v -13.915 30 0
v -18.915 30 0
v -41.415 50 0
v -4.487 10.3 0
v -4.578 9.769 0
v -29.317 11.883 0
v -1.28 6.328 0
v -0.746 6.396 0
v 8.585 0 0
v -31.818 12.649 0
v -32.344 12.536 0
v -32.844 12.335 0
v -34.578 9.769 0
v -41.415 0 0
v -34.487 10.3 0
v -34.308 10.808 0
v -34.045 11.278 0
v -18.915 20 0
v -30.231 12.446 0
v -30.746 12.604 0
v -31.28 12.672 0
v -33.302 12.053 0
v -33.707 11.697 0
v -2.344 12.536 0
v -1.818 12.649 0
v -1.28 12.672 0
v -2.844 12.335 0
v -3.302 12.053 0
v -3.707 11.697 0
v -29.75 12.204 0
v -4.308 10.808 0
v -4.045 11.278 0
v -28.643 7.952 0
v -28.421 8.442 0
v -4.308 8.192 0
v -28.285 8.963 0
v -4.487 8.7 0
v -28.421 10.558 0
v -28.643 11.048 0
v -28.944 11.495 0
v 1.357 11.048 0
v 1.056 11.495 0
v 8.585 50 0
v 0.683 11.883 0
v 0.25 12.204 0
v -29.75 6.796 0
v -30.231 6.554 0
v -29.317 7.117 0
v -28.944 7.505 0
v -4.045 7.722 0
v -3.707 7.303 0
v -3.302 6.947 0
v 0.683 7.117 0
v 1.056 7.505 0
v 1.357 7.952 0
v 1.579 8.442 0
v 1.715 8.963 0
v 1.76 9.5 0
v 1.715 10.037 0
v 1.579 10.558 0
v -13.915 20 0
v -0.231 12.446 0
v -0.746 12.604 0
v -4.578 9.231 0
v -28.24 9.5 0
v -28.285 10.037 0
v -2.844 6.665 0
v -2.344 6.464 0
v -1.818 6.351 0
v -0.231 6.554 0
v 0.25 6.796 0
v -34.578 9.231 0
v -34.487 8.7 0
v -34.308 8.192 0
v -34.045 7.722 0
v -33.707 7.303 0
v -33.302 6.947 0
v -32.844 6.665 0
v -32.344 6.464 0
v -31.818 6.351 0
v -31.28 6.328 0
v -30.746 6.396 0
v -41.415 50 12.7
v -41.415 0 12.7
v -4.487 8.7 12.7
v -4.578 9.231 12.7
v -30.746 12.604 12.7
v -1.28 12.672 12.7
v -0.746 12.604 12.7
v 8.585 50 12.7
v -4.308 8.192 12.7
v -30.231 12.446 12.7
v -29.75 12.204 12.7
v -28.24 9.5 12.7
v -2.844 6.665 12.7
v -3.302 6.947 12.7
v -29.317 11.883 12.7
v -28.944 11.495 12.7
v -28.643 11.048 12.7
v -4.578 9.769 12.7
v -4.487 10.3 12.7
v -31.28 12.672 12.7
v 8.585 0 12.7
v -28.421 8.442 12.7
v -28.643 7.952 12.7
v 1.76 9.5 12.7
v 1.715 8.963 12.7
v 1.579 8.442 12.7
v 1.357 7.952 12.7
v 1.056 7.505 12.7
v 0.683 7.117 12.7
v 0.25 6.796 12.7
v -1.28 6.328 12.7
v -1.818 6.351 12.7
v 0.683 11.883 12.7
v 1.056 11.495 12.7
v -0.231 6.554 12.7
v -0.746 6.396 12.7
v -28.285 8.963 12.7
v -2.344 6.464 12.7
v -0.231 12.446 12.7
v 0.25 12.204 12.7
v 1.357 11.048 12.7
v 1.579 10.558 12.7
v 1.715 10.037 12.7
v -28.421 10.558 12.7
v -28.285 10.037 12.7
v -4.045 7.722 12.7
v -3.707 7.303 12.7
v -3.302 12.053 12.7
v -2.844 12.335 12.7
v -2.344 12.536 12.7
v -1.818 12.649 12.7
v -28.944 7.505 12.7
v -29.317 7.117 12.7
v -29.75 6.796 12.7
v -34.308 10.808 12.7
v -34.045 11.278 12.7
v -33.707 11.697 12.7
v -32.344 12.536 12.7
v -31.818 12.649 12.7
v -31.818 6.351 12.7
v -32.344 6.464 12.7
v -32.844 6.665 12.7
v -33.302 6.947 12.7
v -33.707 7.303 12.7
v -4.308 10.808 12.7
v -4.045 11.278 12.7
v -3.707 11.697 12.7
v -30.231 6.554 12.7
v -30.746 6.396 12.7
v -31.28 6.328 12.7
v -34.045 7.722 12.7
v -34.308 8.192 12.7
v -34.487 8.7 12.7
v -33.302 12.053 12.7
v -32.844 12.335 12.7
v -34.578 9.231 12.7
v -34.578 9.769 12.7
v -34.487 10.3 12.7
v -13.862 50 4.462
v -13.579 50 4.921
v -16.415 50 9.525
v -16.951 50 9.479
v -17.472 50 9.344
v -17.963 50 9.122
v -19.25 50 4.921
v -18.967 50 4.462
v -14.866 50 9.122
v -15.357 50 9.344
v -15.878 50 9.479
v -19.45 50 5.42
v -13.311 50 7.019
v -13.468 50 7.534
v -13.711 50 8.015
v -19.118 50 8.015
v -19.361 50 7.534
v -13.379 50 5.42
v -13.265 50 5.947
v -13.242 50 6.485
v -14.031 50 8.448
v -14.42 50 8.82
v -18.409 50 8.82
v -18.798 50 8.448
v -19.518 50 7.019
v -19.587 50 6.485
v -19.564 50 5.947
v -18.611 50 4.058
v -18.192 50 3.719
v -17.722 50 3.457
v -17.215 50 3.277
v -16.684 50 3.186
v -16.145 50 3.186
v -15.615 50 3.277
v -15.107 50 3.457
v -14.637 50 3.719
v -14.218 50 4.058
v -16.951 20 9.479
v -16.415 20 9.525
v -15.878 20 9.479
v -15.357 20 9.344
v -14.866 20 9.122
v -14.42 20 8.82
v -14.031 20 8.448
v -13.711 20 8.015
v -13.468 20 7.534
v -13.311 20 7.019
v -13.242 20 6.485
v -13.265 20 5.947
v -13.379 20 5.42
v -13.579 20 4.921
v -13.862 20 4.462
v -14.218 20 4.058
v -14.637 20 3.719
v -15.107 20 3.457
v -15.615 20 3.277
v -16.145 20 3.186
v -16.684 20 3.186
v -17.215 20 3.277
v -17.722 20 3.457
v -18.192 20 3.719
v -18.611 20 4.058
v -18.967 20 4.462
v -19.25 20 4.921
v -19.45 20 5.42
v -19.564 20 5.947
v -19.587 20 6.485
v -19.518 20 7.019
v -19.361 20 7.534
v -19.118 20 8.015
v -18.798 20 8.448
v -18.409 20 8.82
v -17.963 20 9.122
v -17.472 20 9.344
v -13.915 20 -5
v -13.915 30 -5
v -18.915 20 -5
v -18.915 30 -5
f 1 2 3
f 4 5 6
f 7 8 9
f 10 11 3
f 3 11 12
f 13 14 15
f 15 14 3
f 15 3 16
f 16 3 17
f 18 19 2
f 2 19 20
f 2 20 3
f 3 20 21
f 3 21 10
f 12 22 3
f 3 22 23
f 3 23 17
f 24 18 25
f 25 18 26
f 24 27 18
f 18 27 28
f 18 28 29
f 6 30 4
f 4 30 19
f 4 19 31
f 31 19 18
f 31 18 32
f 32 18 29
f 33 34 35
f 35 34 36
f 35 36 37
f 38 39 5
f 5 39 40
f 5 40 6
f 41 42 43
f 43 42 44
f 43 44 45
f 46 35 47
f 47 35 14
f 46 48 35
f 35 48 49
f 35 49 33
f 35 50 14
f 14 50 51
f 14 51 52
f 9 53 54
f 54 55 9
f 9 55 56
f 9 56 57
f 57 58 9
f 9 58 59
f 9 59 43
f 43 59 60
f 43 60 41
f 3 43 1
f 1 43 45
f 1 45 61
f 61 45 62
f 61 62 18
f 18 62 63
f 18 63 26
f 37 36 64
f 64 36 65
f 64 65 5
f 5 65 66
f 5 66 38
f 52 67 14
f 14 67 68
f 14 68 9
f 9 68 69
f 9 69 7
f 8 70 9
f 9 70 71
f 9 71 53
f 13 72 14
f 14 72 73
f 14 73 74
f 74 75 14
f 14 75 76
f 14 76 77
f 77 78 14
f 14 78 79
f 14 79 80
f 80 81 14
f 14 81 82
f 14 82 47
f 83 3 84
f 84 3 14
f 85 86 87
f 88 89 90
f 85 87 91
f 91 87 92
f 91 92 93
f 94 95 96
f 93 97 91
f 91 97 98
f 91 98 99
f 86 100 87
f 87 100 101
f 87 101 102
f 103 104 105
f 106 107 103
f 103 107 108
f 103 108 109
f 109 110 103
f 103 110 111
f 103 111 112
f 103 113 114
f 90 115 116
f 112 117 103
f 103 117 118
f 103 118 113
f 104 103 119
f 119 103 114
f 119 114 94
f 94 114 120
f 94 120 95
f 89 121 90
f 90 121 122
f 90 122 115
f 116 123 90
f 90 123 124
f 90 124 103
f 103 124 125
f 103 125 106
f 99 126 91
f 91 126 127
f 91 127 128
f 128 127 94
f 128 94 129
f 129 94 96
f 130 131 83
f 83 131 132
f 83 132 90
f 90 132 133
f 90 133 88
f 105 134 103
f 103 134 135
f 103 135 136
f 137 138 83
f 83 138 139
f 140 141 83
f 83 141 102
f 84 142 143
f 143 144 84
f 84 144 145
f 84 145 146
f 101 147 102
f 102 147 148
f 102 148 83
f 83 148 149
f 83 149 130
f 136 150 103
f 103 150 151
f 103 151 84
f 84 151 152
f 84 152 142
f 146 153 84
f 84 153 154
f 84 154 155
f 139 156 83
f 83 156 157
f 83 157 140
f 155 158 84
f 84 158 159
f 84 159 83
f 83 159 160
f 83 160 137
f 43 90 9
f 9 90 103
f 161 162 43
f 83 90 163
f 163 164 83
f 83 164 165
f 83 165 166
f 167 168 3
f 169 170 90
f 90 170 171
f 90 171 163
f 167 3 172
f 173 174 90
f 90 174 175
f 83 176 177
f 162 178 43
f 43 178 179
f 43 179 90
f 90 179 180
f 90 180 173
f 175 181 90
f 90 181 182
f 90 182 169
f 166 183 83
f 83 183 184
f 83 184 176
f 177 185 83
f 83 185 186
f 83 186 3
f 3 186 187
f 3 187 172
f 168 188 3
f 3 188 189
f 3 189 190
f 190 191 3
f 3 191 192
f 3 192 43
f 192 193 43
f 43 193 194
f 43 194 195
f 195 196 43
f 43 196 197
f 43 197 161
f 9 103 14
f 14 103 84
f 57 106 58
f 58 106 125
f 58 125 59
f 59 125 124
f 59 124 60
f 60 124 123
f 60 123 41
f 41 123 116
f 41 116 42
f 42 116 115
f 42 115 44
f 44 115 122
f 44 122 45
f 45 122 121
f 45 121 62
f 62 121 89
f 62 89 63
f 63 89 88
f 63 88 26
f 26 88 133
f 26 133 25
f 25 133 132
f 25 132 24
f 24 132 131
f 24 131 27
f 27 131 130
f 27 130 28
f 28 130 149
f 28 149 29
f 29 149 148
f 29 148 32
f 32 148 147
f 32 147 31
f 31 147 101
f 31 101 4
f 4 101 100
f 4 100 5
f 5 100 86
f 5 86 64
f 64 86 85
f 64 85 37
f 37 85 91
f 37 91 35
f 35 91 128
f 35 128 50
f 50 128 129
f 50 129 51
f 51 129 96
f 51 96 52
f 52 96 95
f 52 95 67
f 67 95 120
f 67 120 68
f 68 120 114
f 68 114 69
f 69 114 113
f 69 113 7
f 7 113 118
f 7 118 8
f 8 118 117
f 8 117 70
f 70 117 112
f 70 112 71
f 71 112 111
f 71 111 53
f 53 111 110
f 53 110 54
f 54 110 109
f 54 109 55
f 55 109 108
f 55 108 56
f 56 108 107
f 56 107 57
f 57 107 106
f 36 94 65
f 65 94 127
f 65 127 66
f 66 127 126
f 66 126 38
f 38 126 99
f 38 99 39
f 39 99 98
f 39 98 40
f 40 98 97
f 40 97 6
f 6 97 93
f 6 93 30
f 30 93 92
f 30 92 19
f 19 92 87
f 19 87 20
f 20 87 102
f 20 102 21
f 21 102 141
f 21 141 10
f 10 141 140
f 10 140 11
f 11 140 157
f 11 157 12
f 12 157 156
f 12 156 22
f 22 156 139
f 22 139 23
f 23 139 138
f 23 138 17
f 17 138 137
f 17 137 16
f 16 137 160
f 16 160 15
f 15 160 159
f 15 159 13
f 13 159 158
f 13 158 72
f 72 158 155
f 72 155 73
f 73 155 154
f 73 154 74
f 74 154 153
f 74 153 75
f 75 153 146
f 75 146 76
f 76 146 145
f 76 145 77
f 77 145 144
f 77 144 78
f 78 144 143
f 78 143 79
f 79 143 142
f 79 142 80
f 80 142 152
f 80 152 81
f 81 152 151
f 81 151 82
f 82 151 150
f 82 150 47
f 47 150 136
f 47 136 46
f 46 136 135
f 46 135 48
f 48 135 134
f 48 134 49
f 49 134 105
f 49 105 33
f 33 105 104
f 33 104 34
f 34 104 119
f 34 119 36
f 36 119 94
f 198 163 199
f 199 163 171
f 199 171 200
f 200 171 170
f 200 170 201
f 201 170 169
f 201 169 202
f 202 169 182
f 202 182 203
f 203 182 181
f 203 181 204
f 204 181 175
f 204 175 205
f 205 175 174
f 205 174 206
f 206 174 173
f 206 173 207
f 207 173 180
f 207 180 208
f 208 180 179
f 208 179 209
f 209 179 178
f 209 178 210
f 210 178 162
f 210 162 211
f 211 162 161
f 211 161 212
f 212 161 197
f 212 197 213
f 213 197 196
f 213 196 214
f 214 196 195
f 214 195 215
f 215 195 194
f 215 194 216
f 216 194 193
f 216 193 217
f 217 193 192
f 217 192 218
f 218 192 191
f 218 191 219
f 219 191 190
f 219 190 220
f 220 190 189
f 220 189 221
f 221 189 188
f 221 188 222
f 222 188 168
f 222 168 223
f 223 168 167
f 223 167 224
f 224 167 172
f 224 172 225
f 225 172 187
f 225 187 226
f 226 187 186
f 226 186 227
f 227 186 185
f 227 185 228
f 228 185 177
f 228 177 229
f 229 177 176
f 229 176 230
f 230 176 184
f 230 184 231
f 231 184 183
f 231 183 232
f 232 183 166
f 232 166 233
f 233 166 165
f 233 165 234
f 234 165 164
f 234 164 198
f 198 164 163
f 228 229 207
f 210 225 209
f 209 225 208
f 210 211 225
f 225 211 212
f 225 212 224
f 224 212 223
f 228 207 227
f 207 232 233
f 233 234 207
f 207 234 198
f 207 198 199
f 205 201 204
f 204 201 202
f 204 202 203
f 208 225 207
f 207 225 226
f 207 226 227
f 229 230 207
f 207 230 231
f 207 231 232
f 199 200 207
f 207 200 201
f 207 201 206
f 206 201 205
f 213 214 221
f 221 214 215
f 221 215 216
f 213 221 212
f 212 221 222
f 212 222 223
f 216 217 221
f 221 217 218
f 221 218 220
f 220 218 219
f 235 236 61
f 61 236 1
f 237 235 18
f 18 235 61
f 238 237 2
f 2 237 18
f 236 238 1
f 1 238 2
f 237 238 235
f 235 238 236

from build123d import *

# Parameters (mm, degrees)
SKETCH1_W           = 50
SKETCH1_H           = 12.7
BOSS_EXTRUDE1_DEPTH = 50
SKETCH4_R           = 3.175
CUT_EXTRUDE2_DEPTH  = 67.154773237
SKETCH5_R           = 3.175
CUT_EXTRUDE3_DEPTH  = 30
SKETCH6_W           = 5
SKETCH6_H           = 10
BOSS_EXTRUDE3_DEPTH = 5


with BuildPart() as part:
    # Sketch1 → Boss-Extrude1 (new body)
    with BuildSketch(Plane(origin=(0, 0, 0), x_dir=(1, 0, 0), z_dir=(0, 1, 0))):
        with Locations((-16.414538776, -6.35)):
            Rectangle(SKETCH1_W, SKETCH1_H)
    extrude(amount=BOSS_EXTRUDE1_DEPTH)

    # Sketch4 → Cut-Extrude2 (cut, through all)
    with BuildSketch(Plane.XY.offset(12.7)):
        with Locations((-1.414538776, 9.5)):
            Circle(SKETCH4_R)
        with Locations((-31.414538776, 9.5)):
            Circle(SKETCH4_R)
    extrude(amount=-CUT_EXTRUDE2_DEPTH, mode=Mode.SUBTRACT)

    # Sketch5 → Cut-Extrude3 (cut)
    with BuildSketch(Plane(origin=(0, 50, 0), x_dir=(1, 0, 0), z_dir=(0, 1, 0))):
        with Locations(Location((-16.414538776, -6.35, 0), (0, 0, 270))):
            Circle(SKETCH5_R)
    extrude(amount=-CUT_EXTRUDE3_DEPTH, mode=Mode.SUBTRACT)

    # Sketch6 → Boss-Extrude3 (add)
    with BuildSketch(Plane(origin=(0, 0, 0), x_dir=(-1, 0, 0), z_dir=(0, 0, -1))):
        with Locations((16.414538776, 25)):
            Rectangle(SKETCH6_W, SKETCH6_H)
    extrude(amount=BOSS_EXTRUDE3_DEPTH)


solid = part.part
